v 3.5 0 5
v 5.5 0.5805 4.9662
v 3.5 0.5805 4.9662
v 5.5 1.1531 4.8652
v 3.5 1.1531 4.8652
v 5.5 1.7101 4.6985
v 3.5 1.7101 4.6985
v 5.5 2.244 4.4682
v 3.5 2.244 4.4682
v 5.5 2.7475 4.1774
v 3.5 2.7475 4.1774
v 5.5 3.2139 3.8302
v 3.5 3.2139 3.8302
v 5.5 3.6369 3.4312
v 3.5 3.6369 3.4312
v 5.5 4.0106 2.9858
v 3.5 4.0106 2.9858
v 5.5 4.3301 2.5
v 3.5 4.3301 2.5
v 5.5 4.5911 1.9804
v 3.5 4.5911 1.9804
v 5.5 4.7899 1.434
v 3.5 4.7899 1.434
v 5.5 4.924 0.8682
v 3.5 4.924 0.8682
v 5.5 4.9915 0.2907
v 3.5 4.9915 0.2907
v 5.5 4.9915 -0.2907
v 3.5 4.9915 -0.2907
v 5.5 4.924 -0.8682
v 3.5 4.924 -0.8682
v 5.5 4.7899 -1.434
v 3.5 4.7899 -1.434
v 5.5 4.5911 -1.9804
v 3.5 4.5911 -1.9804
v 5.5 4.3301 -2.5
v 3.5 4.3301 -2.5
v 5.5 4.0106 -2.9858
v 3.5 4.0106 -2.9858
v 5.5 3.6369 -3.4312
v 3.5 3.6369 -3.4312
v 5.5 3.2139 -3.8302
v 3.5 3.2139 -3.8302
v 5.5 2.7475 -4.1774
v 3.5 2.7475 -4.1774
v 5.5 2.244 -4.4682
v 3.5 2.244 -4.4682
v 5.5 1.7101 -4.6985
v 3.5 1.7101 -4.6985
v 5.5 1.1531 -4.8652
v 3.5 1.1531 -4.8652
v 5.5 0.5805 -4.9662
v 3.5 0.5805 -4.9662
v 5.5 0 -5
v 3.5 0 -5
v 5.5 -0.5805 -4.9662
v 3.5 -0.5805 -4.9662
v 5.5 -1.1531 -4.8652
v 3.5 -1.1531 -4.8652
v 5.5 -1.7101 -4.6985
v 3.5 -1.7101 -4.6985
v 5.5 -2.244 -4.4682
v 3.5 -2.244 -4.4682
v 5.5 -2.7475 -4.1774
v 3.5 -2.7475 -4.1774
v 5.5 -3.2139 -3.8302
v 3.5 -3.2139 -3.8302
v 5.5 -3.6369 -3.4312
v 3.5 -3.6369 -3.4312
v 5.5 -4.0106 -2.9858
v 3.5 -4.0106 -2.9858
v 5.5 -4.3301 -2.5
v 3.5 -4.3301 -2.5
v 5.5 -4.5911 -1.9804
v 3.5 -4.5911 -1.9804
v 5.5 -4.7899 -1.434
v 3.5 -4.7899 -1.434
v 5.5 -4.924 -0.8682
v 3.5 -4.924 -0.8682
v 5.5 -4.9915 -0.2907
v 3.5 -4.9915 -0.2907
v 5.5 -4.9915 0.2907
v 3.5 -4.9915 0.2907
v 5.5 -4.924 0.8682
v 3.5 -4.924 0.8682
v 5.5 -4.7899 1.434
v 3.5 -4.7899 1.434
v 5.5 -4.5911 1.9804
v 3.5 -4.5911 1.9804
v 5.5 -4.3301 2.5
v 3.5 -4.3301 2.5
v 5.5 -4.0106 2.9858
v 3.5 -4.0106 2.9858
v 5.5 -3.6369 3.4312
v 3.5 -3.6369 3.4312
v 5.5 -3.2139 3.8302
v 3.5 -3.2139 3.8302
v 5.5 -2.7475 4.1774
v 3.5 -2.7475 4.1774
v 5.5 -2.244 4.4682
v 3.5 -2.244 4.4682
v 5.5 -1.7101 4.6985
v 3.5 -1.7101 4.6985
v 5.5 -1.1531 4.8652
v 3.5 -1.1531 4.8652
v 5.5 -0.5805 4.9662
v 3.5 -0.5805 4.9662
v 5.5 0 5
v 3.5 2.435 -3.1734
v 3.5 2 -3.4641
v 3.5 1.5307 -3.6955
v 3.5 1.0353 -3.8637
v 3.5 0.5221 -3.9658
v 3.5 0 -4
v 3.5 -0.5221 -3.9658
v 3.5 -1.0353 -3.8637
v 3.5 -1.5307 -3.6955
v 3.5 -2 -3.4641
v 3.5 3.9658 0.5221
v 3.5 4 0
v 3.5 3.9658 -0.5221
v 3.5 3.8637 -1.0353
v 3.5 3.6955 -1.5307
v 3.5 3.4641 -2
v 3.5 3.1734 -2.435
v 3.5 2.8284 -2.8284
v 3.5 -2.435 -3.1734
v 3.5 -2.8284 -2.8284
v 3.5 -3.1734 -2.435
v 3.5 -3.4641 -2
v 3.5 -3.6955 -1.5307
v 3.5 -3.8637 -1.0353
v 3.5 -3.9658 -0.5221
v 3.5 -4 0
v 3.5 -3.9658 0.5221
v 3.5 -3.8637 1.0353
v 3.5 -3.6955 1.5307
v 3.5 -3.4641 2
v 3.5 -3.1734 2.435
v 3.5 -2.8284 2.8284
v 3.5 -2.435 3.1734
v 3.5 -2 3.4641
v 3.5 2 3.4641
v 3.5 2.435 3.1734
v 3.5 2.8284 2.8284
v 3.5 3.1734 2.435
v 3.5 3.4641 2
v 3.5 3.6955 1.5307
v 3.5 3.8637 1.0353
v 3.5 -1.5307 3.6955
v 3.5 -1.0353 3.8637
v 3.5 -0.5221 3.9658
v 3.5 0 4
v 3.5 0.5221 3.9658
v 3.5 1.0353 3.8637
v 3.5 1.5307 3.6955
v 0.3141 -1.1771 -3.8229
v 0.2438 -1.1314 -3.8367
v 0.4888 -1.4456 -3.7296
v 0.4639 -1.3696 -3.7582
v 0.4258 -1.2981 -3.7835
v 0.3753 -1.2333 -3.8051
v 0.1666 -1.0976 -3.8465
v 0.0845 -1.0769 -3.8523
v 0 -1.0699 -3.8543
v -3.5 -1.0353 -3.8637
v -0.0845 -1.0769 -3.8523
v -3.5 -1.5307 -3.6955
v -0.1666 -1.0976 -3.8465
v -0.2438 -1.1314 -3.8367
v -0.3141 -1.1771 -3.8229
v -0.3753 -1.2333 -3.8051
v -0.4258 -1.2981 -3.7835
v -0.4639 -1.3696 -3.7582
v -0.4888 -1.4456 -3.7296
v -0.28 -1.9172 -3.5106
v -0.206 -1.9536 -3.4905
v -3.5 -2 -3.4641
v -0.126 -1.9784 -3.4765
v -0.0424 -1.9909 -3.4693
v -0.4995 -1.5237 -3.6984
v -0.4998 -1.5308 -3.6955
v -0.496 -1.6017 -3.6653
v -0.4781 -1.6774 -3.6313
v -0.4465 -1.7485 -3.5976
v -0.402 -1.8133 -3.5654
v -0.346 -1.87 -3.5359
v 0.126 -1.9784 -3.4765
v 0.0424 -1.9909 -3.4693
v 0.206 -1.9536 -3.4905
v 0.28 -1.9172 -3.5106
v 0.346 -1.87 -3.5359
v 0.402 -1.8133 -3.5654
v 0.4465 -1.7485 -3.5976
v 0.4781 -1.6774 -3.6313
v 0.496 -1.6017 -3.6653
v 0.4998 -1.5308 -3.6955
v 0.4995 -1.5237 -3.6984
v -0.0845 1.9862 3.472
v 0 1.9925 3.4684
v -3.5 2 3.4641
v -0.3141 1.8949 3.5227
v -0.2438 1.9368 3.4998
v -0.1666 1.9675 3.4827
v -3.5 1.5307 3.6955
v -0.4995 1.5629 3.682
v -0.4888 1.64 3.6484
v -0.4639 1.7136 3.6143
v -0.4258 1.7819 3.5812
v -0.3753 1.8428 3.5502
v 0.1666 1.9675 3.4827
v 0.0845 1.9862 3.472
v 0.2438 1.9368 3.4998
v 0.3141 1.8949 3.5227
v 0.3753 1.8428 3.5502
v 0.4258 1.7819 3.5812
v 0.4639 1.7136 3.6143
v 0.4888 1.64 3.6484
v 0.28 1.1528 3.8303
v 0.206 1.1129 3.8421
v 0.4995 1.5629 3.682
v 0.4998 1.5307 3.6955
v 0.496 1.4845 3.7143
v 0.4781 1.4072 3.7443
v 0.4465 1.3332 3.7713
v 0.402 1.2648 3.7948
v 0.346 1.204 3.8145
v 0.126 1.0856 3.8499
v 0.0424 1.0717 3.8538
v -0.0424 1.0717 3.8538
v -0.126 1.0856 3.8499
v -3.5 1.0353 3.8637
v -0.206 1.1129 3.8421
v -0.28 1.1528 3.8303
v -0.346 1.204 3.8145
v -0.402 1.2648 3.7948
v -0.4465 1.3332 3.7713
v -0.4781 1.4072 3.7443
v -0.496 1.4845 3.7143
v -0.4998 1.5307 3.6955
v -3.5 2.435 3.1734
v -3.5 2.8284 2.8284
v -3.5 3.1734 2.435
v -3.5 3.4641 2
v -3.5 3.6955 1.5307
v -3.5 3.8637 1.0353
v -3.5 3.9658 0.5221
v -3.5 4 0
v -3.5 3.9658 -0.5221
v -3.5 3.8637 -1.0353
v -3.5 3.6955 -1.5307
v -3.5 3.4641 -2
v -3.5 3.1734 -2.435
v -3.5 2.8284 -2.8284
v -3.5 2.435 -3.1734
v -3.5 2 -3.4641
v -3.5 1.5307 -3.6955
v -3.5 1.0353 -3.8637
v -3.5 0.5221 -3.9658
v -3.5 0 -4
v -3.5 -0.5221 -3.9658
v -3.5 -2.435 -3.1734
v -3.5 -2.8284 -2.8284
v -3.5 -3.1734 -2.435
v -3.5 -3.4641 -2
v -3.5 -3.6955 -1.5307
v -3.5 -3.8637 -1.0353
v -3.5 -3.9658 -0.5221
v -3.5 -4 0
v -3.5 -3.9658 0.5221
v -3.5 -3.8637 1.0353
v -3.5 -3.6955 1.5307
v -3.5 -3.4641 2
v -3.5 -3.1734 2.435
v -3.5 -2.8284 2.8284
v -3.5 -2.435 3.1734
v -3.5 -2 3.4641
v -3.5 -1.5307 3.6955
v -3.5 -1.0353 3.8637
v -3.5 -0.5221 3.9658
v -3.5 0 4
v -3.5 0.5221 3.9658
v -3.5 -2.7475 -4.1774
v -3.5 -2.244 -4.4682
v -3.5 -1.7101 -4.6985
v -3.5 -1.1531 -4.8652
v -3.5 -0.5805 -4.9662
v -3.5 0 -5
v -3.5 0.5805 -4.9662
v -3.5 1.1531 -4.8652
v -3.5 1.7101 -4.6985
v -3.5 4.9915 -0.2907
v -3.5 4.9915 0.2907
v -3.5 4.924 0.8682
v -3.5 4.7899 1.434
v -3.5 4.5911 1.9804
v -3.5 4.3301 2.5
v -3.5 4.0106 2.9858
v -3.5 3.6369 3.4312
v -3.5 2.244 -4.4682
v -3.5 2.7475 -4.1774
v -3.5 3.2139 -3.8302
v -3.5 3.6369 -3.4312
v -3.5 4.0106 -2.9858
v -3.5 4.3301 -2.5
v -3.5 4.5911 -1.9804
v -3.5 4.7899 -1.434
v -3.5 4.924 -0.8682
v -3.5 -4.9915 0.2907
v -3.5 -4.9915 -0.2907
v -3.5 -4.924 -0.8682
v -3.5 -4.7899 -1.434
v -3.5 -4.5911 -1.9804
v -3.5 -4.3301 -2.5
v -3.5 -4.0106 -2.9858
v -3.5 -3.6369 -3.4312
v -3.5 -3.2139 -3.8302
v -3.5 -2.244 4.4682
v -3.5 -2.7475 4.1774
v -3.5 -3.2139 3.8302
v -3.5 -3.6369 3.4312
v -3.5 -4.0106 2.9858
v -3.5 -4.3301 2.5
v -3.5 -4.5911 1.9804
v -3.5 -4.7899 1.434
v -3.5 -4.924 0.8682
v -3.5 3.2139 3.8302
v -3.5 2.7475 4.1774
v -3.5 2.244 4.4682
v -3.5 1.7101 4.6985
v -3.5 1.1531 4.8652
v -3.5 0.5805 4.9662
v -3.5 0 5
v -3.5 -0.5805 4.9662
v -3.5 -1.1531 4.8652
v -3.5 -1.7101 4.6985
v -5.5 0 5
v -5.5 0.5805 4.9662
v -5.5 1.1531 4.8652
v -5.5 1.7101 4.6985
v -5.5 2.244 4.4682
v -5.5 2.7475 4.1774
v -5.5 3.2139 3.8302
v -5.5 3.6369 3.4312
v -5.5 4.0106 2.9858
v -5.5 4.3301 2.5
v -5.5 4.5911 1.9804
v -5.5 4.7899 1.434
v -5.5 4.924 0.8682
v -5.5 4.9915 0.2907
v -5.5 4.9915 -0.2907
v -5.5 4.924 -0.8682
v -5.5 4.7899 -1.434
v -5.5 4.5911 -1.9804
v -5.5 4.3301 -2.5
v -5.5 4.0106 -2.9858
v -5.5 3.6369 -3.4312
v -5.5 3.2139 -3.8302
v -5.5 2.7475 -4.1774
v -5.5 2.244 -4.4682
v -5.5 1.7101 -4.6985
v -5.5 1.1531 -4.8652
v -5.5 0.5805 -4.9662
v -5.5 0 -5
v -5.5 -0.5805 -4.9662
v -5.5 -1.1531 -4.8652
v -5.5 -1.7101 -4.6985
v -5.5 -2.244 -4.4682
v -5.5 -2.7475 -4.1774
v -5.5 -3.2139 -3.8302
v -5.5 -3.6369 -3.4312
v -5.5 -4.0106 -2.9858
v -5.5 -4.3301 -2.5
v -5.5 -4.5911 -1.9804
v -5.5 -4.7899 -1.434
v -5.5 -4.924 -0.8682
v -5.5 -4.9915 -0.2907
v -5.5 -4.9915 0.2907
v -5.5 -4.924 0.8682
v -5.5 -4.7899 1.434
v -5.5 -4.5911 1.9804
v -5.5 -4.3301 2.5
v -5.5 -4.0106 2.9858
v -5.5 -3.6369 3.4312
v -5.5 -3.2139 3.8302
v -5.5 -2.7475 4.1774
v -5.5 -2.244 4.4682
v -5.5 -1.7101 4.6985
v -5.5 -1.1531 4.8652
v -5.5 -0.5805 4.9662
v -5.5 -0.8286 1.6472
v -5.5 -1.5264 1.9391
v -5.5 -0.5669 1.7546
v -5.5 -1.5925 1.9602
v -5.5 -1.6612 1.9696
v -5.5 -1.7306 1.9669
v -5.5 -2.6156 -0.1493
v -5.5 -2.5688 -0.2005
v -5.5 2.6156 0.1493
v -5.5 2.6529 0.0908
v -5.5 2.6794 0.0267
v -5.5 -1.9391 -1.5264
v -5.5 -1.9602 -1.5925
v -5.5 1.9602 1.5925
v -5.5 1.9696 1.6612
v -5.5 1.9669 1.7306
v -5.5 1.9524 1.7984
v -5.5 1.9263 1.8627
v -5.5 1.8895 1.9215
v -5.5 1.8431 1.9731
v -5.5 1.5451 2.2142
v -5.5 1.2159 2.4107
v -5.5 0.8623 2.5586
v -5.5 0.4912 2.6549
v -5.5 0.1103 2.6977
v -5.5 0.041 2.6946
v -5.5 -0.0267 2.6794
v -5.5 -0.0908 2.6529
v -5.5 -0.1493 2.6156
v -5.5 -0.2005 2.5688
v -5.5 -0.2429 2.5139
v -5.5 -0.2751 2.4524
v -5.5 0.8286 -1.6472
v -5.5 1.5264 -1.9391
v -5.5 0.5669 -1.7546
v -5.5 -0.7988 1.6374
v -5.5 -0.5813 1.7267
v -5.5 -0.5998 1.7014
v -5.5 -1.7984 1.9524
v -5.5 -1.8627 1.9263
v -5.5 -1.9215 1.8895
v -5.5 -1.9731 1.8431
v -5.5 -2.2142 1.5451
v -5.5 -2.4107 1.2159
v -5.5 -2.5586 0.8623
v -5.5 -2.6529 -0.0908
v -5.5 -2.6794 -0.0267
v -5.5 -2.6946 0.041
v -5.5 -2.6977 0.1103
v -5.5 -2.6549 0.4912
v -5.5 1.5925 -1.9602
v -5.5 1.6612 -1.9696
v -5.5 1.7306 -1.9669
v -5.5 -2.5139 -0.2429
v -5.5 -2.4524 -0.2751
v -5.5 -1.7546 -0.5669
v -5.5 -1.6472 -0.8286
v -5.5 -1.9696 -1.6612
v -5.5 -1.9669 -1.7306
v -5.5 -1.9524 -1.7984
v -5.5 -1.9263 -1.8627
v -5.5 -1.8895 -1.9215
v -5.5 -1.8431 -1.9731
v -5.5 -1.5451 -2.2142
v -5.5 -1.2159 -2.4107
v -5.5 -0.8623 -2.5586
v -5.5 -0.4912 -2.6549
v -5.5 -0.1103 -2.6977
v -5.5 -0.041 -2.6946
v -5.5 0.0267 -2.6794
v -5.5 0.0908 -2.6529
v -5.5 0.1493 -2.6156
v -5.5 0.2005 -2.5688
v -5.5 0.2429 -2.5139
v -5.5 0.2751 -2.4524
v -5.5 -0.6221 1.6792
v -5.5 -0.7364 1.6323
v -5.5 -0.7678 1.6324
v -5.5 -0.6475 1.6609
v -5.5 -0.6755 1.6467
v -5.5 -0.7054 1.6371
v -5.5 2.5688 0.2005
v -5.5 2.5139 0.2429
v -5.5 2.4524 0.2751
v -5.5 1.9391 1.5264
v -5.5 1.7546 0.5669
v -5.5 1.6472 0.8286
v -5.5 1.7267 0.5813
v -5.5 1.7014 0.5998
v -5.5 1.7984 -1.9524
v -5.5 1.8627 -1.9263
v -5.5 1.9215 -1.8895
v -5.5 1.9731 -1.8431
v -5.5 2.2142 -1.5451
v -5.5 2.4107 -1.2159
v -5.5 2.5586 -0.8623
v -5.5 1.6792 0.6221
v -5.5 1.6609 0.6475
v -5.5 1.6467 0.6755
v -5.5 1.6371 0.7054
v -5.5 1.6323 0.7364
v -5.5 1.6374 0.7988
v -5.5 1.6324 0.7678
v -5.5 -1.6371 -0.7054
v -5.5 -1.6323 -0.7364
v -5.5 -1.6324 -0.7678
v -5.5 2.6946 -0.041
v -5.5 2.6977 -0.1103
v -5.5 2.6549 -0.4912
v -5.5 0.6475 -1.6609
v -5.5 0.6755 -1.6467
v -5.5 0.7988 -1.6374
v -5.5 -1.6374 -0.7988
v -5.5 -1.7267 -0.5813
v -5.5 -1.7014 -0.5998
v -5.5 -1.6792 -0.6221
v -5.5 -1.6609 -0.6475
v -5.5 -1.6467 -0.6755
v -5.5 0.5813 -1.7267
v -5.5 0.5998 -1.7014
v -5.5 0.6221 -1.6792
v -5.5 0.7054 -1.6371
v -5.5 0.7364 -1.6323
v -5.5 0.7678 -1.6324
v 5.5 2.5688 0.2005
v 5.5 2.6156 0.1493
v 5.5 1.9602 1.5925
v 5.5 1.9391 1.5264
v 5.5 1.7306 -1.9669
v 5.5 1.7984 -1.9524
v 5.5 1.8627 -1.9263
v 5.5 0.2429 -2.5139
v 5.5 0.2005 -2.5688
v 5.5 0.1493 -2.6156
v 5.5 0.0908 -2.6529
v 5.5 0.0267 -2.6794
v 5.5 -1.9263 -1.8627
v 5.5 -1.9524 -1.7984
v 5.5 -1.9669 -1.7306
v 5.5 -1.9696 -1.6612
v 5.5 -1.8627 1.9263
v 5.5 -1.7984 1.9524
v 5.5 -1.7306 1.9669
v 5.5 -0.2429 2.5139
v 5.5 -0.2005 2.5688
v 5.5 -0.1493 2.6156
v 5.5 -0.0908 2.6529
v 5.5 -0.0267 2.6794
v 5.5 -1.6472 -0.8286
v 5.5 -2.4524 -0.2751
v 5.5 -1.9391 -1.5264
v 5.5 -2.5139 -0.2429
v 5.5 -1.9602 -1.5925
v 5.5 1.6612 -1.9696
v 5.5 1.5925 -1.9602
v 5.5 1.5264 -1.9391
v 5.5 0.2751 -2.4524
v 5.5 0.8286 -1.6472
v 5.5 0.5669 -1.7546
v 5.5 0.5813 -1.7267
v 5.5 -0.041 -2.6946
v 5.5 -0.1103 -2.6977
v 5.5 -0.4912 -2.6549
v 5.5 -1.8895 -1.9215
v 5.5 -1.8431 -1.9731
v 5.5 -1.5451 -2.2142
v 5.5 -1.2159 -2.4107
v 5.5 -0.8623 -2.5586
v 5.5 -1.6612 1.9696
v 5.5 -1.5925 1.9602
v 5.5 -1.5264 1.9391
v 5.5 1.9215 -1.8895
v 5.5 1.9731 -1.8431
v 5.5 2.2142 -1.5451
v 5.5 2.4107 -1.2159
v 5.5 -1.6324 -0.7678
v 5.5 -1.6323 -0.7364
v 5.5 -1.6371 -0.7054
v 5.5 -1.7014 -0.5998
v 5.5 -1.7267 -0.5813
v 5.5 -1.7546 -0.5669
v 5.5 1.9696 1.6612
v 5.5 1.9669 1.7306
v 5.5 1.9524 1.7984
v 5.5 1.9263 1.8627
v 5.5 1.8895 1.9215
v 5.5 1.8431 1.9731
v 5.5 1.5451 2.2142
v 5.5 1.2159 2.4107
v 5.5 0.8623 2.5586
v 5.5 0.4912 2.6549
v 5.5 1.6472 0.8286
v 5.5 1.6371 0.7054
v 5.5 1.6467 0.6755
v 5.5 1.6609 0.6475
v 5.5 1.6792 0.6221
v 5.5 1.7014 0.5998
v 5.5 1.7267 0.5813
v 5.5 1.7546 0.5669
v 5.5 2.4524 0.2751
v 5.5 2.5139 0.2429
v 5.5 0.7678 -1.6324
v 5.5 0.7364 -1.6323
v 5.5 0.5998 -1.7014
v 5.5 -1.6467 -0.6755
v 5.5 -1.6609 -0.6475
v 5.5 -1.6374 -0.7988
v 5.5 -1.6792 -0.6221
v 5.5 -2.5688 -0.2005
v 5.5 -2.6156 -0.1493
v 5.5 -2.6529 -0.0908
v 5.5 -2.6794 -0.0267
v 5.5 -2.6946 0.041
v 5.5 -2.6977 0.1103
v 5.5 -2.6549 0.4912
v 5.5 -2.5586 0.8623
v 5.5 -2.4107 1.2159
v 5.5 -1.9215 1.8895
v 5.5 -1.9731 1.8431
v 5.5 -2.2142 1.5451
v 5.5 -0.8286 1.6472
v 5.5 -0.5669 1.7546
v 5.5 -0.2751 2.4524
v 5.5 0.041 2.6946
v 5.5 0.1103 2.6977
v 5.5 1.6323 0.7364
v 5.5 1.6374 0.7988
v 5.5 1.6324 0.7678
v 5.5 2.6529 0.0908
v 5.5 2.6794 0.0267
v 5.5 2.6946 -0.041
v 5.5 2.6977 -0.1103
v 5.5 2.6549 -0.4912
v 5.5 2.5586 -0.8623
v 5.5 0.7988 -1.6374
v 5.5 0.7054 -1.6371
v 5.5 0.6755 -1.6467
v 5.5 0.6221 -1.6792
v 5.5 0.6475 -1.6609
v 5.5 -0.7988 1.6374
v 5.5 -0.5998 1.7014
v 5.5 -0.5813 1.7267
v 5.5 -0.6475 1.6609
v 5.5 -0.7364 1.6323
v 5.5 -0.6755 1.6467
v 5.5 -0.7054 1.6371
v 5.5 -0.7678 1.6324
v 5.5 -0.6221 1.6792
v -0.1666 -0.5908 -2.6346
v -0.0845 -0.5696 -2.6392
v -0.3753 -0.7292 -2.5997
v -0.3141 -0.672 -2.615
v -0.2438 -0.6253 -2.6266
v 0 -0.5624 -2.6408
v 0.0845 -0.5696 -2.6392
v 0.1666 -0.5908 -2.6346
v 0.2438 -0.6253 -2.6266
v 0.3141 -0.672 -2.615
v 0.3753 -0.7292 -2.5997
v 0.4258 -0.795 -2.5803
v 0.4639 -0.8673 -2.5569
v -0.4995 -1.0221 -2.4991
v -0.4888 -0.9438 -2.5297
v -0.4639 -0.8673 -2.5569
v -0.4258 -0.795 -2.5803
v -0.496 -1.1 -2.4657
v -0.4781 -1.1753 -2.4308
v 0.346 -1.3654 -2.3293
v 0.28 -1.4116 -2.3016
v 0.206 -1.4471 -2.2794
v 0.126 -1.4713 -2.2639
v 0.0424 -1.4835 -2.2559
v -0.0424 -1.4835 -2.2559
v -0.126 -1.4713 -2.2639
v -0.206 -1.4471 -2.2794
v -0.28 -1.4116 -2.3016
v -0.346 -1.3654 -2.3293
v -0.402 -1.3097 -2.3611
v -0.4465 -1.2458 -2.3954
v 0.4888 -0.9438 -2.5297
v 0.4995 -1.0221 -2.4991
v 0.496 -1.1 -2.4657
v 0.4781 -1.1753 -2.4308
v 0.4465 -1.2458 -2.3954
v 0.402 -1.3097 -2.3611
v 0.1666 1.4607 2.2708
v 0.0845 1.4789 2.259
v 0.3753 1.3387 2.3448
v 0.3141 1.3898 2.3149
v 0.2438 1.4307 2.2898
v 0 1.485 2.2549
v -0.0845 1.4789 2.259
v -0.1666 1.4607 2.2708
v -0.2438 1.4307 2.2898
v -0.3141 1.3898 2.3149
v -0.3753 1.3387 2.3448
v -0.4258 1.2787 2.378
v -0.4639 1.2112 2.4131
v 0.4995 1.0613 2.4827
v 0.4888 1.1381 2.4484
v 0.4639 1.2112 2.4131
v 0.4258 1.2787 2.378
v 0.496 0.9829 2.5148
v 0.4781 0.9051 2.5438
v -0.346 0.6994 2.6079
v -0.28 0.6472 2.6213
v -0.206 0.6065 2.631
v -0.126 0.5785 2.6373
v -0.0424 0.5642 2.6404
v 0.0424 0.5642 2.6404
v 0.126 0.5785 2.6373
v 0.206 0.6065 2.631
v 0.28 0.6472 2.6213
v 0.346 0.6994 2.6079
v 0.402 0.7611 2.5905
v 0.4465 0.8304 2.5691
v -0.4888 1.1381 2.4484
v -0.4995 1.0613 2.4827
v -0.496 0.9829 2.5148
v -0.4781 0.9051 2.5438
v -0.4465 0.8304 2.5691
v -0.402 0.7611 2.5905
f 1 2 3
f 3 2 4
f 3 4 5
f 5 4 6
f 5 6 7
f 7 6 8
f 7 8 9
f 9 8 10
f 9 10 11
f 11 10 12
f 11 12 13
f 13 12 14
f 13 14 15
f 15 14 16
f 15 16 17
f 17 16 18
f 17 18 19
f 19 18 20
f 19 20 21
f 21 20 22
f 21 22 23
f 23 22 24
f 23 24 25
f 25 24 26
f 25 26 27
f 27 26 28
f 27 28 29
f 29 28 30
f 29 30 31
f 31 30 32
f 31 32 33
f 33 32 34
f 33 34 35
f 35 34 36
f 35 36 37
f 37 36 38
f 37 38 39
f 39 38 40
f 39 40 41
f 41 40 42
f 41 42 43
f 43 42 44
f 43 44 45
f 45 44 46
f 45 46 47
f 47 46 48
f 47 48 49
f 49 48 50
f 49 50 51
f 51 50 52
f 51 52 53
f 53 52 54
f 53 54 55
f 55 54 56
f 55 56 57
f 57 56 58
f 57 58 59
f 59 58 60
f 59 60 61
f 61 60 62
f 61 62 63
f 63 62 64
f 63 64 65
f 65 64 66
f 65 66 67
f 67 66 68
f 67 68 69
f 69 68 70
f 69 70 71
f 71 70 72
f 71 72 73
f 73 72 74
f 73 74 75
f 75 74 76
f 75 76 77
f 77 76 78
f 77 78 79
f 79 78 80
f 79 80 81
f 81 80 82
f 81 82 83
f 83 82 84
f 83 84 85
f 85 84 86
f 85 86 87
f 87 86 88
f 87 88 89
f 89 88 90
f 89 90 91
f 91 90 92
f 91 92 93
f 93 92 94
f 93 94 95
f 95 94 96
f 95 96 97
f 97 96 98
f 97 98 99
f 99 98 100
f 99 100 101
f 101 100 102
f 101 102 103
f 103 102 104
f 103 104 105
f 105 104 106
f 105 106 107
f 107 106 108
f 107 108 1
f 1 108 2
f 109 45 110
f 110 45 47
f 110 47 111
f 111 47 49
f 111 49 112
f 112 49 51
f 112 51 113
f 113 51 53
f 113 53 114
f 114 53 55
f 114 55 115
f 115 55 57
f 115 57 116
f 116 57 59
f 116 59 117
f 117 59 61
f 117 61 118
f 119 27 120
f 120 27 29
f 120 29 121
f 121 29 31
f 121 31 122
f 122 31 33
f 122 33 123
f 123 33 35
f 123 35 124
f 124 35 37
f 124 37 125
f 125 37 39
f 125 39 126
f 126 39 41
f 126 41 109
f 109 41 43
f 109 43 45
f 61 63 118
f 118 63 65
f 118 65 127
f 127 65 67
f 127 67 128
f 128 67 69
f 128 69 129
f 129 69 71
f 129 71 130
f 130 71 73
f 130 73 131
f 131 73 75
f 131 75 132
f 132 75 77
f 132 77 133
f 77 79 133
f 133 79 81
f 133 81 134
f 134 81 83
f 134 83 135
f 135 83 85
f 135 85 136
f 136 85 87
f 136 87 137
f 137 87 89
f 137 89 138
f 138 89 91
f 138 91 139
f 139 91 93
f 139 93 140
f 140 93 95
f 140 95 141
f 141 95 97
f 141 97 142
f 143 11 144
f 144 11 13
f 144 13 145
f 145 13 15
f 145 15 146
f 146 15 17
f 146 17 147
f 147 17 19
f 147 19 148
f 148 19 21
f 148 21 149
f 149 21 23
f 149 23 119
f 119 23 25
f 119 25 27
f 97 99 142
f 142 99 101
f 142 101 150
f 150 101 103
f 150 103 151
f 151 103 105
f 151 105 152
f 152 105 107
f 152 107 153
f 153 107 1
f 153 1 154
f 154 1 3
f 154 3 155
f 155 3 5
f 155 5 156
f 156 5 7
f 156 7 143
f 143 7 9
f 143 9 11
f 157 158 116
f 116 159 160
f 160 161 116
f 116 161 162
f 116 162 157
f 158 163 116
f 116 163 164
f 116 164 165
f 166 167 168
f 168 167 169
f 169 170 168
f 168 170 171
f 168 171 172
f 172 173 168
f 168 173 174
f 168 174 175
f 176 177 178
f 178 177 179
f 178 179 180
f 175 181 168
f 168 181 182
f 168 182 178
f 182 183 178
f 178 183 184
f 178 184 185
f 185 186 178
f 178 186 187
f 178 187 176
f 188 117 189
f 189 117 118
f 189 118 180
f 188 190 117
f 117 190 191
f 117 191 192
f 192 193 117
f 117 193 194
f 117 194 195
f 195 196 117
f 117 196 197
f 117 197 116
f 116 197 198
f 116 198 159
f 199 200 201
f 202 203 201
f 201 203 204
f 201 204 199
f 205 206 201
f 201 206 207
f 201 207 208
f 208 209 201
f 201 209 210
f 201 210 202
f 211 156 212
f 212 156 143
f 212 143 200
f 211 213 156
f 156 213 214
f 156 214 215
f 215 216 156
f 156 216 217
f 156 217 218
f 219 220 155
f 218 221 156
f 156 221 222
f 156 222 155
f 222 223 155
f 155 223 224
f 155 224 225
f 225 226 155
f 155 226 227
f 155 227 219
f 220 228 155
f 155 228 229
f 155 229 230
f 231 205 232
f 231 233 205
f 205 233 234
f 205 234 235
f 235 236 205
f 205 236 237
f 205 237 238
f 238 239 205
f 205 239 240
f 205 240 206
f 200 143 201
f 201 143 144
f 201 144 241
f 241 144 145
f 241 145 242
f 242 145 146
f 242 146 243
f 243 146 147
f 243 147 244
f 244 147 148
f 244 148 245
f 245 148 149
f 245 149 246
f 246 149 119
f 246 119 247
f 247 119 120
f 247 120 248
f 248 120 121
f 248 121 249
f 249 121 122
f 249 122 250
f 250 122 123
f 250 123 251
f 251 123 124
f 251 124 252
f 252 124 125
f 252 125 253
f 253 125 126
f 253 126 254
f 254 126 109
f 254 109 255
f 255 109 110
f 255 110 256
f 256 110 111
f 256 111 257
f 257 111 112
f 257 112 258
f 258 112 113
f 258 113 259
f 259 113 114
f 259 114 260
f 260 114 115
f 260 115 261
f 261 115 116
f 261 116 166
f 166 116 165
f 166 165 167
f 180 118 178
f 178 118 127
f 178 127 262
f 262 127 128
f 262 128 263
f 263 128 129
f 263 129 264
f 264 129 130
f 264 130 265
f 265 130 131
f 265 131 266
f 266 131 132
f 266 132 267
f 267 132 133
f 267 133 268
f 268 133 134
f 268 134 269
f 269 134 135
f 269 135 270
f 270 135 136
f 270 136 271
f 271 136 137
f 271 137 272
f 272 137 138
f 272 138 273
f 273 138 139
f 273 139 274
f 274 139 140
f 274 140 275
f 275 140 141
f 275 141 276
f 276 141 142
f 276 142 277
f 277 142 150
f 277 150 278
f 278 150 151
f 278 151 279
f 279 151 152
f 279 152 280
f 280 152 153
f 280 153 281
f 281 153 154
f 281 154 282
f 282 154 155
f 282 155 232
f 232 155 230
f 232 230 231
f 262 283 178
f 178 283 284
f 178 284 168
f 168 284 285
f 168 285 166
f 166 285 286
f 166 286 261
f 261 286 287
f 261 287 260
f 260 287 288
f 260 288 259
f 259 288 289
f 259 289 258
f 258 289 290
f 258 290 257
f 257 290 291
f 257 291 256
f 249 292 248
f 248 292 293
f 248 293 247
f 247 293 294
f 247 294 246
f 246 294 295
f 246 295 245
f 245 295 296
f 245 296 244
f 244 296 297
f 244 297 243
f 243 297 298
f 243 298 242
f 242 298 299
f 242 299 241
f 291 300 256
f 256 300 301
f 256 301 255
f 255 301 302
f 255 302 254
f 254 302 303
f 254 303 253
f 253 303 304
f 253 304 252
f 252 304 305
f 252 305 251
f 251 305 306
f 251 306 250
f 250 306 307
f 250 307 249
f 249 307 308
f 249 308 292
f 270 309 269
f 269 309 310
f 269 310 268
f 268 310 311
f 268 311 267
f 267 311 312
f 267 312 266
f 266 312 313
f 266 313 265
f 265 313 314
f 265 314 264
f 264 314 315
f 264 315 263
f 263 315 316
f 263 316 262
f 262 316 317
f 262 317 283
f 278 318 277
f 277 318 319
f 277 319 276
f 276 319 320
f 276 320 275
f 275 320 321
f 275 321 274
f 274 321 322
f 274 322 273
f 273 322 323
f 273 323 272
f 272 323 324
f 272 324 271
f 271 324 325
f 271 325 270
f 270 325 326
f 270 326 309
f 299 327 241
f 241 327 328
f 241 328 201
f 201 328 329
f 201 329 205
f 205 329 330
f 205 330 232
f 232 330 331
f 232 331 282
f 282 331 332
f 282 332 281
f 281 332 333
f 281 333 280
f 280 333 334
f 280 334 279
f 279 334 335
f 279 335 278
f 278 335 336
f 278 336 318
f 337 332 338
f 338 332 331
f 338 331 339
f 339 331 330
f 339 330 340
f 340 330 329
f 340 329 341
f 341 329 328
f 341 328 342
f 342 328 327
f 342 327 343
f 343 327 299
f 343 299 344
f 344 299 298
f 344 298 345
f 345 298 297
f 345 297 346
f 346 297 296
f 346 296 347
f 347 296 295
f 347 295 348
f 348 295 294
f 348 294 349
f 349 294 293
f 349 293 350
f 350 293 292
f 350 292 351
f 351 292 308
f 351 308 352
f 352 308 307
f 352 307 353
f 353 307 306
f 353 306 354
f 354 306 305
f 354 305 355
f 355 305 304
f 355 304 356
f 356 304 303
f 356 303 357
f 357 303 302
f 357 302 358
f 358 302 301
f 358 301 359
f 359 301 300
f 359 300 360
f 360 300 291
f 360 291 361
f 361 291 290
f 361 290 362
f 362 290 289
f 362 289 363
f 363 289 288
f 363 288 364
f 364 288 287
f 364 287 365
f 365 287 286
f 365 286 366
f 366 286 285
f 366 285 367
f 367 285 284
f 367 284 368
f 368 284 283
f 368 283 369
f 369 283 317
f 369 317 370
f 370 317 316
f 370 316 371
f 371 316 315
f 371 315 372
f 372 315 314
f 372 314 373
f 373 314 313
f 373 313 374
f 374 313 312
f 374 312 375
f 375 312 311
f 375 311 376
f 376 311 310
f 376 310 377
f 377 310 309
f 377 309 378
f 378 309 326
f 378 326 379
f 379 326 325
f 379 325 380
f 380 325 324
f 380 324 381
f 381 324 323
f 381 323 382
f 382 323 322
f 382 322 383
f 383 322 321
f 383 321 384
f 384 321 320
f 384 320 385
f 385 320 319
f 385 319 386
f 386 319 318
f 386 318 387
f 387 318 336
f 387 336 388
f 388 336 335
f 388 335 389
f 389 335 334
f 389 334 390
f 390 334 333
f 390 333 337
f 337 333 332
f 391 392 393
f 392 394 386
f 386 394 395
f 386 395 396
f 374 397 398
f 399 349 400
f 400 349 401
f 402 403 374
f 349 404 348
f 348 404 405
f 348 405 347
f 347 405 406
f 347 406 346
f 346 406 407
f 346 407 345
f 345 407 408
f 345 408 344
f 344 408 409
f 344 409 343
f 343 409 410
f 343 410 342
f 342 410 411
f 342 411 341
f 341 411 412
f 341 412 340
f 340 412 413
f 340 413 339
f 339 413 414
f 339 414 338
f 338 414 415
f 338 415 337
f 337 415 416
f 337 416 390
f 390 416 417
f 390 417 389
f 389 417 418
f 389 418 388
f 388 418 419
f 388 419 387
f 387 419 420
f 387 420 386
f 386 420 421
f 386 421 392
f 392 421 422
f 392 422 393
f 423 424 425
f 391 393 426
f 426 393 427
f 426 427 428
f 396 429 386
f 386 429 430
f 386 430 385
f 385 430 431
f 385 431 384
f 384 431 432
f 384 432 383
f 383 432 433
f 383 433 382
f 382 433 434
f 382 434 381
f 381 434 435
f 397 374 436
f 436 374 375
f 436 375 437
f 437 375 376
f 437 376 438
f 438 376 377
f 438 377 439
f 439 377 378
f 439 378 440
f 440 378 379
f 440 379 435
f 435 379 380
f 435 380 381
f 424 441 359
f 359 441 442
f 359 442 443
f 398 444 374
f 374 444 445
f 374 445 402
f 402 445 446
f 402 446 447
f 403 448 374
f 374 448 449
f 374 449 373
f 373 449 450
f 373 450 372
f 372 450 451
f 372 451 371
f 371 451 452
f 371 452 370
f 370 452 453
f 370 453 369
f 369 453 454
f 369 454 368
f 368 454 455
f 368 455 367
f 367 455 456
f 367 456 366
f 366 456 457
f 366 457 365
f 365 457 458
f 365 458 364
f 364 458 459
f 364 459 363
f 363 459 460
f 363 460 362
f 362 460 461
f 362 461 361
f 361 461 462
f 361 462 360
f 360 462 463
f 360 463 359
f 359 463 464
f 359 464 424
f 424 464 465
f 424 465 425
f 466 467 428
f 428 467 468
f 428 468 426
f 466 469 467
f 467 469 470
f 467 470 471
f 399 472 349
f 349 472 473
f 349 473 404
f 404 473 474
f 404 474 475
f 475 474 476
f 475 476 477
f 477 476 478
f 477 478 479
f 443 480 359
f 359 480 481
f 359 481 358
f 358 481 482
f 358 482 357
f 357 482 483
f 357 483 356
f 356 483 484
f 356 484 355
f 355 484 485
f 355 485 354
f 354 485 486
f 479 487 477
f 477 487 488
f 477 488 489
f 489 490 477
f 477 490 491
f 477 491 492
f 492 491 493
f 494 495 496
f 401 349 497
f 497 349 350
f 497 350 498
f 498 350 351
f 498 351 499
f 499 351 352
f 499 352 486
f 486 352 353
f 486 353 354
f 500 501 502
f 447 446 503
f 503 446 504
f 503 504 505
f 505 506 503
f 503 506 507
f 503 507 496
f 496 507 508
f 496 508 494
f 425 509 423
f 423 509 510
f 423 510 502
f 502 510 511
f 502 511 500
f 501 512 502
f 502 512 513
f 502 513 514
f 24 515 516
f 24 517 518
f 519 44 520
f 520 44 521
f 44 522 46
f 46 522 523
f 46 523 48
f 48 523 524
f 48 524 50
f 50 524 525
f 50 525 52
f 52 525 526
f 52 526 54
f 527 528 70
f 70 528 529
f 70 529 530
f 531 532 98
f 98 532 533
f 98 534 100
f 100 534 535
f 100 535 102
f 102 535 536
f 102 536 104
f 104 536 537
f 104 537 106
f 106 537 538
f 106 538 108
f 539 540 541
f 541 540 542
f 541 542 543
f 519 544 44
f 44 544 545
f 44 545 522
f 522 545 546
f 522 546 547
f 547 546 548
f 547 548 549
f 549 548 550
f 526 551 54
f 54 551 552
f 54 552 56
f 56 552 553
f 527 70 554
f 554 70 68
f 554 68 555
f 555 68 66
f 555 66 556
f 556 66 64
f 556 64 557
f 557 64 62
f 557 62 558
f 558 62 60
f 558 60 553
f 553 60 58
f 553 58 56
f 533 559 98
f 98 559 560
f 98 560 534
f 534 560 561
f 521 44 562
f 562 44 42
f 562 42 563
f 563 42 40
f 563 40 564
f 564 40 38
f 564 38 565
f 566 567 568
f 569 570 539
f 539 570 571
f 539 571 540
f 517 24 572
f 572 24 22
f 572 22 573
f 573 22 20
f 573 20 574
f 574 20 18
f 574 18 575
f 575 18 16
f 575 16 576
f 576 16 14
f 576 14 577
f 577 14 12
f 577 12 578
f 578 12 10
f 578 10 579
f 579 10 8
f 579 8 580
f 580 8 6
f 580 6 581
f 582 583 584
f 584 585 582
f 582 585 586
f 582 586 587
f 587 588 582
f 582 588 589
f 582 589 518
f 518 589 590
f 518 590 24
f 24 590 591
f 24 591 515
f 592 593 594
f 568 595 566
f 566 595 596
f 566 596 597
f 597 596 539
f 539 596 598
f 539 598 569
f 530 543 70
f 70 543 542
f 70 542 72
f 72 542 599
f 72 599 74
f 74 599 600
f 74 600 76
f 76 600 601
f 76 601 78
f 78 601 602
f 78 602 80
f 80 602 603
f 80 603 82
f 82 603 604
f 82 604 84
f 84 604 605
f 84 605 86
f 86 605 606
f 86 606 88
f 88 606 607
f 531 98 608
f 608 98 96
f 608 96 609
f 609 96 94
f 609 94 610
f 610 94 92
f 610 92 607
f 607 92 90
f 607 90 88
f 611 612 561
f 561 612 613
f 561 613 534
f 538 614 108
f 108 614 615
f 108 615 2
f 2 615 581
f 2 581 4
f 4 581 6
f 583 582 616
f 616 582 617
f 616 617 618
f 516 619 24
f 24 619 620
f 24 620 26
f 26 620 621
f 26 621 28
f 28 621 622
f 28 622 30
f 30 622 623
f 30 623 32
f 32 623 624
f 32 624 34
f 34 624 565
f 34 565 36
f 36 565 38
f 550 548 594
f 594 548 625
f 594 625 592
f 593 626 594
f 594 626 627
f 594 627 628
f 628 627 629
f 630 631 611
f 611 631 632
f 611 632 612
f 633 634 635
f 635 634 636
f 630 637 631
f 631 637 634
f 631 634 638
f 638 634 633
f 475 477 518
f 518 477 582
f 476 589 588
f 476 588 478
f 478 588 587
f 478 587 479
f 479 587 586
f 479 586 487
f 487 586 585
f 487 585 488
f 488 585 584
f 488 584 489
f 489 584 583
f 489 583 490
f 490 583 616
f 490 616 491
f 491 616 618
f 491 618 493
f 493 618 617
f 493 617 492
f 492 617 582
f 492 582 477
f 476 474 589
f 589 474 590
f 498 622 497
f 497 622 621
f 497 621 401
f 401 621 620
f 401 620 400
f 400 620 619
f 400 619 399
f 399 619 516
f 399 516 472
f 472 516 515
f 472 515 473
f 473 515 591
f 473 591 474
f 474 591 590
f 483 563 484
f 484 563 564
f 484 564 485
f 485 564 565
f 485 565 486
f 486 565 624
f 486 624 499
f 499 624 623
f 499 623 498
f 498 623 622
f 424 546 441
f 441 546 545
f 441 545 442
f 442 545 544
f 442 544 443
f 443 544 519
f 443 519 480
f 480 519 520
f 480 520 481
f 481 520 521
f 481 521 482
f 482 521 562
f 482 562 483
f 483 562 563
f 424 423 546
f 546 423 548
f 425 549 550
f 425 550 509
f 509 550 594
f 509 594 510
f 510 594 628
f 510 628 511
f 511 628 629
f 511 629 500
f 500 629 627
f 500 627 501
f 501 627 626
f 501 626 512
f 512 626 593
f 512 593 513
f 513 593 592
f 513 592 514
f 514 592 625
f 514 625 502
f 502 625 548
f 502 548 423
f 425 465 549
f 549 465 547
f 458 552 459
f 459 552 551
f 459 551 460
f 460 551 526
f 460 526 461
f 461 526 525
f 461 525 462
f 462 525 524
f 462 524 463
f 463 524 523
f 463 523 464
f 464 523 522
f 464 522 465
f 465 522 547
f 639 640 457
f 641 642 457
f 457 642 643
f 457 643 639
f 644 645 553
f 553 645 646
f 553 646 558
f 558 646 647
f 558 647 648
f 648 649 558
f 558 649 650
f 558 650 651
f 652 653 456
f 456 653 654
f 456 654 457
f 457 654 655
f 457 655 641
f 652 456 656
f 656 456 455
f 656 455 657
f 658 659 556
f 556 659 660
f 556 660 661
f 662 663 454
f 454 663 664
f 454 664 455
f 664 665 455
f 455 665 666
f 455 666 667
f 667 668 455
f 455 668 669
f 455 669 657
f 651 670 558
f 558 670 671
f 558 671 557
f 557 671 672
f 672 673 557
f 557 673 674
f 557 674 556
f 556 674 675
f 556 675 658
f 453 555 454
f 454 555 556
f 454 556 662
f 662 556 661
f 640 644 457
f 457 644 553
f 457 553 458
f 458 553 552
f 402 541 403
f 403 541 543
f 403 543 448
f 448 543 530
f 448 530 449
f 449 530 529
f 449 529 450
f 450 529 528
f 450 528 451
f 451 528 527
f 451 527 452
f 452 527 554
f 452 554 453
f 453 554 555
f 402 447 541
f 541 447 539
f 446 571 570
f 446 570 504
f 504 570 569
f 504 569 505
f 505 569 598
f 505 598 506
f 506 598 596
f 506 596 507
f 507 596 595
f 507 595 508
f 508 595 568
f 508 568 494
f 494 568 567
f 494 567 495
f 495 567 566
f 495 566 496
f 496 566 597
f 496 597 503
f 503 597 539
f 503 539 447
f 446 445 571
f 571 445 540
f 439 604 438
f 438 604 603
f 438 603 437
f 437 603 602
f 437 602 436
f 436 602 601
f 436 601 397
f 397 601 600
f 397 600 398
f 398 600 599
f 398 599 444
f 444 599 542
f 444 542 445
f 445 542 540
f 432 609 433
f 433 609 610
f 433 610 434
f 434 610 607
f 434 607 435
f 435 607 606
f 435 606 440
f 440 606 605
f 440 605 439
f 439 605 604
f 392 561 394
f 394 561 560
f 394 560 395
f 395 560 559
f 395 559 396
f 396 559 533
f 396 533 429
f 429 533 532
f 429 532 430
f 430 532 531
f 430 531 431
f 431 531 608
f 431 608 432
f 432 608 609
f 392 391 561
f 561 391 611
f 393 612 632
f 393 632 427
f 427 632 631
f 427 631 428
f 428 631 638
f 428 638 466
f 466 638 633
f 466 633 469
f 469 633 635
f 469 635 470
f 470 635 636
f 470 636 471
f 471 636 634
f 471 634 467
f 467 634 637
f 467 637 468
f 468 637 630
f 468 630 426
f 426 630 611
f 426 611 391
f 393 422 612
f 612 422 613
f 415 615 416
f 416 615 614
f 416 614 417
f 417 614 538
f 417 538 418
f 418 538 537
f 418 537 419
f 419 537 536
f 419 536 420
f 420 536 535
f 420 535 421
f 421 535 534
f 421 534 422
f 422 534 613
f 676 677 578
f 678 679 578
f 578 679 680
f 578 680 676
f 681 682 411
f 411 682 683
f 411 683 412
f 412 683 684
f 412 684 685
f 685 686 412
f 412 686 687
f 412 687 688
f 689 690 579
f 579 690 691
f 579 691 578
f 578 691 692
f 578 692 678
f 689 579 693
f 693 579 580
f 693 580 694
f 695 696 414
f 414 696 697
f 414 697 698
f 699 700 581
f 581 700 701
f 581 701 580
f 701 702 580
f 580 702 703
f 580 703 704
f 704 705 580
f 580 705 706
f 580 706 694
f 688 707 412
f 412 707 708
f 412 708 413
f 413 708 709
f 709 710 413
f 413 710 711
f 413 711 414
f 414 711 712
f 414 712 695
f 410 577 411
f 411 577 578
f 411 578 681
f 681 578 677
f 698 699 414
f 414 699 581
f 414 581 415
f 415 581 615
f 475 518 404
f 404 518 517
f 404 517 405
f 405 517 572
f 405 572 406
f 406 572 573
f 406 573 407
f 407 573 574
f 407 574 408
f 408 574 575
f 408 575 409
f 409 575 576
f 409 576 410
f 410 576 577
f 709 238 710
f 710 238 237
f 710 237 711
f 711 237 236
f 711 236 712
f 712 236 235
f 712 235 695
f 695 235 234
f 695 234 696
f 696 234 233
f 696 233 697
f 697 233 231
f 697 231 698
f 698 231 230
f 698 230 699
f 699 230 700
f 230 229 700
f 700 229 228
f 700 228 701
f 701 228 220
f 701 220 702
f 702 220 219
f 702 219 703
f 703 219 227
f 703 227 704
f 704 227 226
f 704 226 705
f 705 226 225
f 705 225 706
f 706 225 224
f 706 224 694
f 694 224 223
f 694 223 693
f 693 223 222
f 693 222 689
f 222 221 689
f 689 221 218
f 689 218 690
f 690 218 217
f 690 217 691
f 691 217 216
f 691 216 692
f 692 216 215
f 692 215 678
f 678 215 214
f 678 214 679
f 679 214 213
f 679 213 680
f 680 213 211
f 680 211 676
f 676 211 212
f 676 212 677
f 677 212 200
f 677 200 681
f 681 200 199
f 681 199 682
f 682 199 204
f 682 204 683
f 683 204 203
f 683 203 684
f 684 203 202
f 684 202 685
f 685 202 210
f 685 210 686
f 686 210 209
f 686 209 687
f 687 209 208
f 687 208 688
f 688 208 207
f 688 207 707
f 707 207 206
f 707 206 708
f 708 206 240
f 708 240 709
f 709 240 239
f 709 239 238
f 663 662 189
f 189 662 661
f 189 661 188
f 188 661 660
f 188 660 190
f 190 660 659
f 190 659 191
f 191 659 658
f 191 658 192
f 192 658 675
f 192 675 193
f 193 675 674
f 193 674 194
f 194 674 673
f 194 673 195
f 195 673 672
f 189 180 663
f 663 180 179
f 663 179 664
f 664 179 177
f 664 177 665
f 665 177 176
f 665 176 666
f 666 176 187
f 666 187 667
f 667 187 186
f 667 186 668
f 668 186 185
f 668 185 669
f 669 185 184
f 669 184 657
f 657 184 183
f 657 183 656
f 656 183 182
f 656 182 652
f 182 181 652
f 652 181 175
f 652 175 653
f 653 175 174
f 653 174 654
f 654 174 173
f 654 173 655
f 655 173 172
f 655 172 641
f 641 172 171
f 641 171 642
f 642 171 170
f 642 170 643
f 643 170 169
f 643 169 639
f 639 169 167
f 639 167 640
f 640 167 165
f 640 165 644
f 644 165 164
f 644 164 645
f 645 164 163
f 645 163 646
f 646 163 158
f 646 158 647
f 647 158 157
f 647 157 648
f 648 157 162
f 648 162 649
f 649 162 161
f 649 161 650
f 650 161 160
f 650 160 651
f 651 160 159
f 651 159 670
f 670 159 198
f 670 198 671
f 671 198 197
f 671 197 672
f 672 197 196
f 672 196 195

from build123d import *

# Parameters (mm, degrees)
CUT_EXTRUDE1_DEPTH      = 14.076696831
CUT_EXTRUDE2_DEPTH      = 10.105317074
CUT_EXTRUDE2_DEPTH_BACK = 10.105317074
SKETCH4_R               = 0.5


with BuildPart() as part:
    # Sketch1 → Revolve1 (revolve)
    with BuildSketch(Plane(origin=(0, 0, 0), x_dir=(1, 0, 0), z_dir=(0, 1, 0))):
        Polygon((-3.5, -5), (-3.5, -4), (3.5, -4), (3.5, -5), (5.5, -5), (5.5, 0), (-5.5, 0), (-5.5, -5), align=None)
    revolve(axis=Axis((-5.5, 0, 0), (1, 0, 0)))

    # Sketch3 → Cut-Extrude1 (cut, through all)
    with BuildSketch(Plane(origin=(5.5, 0, 0), x_dir=(0, 0, -1), z_dir=(1, 0, 0))):
        with BuildLine():
            ThreePointArc((0.110278314, 2.697746966), (-0.12087287, 2.635504953), (-0.275087283, 2.452412483))
            Line((-0.275087283, 2.452412483), (-0.566923139, 1.754593444))
            ThreePointArc((-0.566923139, 1.754593444), (-0.675530556, 1.646723678), (-0.82860304, 1.647245277))
            Line((-0.82860304, 1.647245277), (-1.526422079, 1.939081132))
            ThreePointArc((-1.526422079, 1.939081132), (-1.764789364, 1.961125979), (-1.973058824, 1.843105769))
            ThreePointArc((-1.973058824, 1.843105769), (-2.490939467, 1.041739204), (-2.697746966, 0.110278314))
            ThreePointArc((-2.697746966, 0.110278314), (-2.635504953, -0.12087287), (-2.452412483, -0.275087283))
            Line((-2.452412483, -0.275087283), (-1.754593444, -0.566923139))
            ThreePointArc((-1.754593444, -0.566923139), (-1.646723678, -0.675530556), (-1.647245277, -0.82860304))
            Line((-1.647245277, -0.82860304), (-1.939081132, -1.526422079))
            ThreePointArc((-1.939081132, -1.526422079), (-1.961125979, -1.764789364), (-1.843105769, -1.973058824))
            ThreePointArc((-1.843105769, -1.973058824), (-1.041739204, -2.490939467), (-0.110278314, -2.697746966))
            ThreePointArc((-0.110278314, -2.697746966), (0.12087287, -2.635504953), (0.275087283, -2.452412483))
            Line((0.275087283, -2.452412483), (0.566923139, -1.754593444))
            ThreePointArc((0.566923139, -1.754593444), (0.675530556, -1.646723678), (0.82860304, -1.647245277))
            Line((0.82860304, -1.647245277), (1.526422079, -1.939081132))
            ThreePointArc((1.526422079, -1.939081132), (1.764789364, -1.961125979), (1.973058824, -1.843105769))
            ThreePointArc((1.973058824, -1.843105769), (2.490939467, -1.041739204), (2.697746966, -0.110278314))
            ThreePointArc((2.697746966, -0.110278314), (2.635504953, 0.12087287), (2.452412483, 0.275087283))
            Line((2.452412483, 0.275087283), (1.754593444, 0.566923139))
            ThreePointArc((1.754593444, 0.566923139), (1.646723678, 0.675530556), (1.647245277, 0.82860304))
            Line((1.647245277, 0.82860304), (1.939081132, 1.526422079))
            ThreePointArc((1.939081132, 1.526422079), (1.961125979, 1.764789364), (1.843105769, 1.973058824))
            ThreePointArc((1.843105769, 1.973058824), (1.041739204, 2.490939467), (0.110278314, 2.697746966))
        make_face()
    extrude(amount=-CUT_EXTRUDE1_DEPTH, mode=Mode.SUBTRACT)

    # Sketch4 → Cut-Extrude2 (cut, two sides: drawn at the far end of the back side and taken through both)
    with BuildSketch(Plane(origin=(0, 0.077165867, 0.184514035), x_dir=(-1, 0, 0), z_dir=(0, -0.38582933492302907, -0.9225701731103457)).offset(-CUT_EXTRUDE2_DEPTH_BACK)):
        with Locations(Location((0, 0, 0), (0, 0, 90))):
            Circle(SKETCH4_R)
    extrude(amount=CUT_EXTRUDE2_DEPTH + CUT_EXTRUDE2_DEPTH_BACK, mode=Mode.SUBTRACT)


solid = part.part
